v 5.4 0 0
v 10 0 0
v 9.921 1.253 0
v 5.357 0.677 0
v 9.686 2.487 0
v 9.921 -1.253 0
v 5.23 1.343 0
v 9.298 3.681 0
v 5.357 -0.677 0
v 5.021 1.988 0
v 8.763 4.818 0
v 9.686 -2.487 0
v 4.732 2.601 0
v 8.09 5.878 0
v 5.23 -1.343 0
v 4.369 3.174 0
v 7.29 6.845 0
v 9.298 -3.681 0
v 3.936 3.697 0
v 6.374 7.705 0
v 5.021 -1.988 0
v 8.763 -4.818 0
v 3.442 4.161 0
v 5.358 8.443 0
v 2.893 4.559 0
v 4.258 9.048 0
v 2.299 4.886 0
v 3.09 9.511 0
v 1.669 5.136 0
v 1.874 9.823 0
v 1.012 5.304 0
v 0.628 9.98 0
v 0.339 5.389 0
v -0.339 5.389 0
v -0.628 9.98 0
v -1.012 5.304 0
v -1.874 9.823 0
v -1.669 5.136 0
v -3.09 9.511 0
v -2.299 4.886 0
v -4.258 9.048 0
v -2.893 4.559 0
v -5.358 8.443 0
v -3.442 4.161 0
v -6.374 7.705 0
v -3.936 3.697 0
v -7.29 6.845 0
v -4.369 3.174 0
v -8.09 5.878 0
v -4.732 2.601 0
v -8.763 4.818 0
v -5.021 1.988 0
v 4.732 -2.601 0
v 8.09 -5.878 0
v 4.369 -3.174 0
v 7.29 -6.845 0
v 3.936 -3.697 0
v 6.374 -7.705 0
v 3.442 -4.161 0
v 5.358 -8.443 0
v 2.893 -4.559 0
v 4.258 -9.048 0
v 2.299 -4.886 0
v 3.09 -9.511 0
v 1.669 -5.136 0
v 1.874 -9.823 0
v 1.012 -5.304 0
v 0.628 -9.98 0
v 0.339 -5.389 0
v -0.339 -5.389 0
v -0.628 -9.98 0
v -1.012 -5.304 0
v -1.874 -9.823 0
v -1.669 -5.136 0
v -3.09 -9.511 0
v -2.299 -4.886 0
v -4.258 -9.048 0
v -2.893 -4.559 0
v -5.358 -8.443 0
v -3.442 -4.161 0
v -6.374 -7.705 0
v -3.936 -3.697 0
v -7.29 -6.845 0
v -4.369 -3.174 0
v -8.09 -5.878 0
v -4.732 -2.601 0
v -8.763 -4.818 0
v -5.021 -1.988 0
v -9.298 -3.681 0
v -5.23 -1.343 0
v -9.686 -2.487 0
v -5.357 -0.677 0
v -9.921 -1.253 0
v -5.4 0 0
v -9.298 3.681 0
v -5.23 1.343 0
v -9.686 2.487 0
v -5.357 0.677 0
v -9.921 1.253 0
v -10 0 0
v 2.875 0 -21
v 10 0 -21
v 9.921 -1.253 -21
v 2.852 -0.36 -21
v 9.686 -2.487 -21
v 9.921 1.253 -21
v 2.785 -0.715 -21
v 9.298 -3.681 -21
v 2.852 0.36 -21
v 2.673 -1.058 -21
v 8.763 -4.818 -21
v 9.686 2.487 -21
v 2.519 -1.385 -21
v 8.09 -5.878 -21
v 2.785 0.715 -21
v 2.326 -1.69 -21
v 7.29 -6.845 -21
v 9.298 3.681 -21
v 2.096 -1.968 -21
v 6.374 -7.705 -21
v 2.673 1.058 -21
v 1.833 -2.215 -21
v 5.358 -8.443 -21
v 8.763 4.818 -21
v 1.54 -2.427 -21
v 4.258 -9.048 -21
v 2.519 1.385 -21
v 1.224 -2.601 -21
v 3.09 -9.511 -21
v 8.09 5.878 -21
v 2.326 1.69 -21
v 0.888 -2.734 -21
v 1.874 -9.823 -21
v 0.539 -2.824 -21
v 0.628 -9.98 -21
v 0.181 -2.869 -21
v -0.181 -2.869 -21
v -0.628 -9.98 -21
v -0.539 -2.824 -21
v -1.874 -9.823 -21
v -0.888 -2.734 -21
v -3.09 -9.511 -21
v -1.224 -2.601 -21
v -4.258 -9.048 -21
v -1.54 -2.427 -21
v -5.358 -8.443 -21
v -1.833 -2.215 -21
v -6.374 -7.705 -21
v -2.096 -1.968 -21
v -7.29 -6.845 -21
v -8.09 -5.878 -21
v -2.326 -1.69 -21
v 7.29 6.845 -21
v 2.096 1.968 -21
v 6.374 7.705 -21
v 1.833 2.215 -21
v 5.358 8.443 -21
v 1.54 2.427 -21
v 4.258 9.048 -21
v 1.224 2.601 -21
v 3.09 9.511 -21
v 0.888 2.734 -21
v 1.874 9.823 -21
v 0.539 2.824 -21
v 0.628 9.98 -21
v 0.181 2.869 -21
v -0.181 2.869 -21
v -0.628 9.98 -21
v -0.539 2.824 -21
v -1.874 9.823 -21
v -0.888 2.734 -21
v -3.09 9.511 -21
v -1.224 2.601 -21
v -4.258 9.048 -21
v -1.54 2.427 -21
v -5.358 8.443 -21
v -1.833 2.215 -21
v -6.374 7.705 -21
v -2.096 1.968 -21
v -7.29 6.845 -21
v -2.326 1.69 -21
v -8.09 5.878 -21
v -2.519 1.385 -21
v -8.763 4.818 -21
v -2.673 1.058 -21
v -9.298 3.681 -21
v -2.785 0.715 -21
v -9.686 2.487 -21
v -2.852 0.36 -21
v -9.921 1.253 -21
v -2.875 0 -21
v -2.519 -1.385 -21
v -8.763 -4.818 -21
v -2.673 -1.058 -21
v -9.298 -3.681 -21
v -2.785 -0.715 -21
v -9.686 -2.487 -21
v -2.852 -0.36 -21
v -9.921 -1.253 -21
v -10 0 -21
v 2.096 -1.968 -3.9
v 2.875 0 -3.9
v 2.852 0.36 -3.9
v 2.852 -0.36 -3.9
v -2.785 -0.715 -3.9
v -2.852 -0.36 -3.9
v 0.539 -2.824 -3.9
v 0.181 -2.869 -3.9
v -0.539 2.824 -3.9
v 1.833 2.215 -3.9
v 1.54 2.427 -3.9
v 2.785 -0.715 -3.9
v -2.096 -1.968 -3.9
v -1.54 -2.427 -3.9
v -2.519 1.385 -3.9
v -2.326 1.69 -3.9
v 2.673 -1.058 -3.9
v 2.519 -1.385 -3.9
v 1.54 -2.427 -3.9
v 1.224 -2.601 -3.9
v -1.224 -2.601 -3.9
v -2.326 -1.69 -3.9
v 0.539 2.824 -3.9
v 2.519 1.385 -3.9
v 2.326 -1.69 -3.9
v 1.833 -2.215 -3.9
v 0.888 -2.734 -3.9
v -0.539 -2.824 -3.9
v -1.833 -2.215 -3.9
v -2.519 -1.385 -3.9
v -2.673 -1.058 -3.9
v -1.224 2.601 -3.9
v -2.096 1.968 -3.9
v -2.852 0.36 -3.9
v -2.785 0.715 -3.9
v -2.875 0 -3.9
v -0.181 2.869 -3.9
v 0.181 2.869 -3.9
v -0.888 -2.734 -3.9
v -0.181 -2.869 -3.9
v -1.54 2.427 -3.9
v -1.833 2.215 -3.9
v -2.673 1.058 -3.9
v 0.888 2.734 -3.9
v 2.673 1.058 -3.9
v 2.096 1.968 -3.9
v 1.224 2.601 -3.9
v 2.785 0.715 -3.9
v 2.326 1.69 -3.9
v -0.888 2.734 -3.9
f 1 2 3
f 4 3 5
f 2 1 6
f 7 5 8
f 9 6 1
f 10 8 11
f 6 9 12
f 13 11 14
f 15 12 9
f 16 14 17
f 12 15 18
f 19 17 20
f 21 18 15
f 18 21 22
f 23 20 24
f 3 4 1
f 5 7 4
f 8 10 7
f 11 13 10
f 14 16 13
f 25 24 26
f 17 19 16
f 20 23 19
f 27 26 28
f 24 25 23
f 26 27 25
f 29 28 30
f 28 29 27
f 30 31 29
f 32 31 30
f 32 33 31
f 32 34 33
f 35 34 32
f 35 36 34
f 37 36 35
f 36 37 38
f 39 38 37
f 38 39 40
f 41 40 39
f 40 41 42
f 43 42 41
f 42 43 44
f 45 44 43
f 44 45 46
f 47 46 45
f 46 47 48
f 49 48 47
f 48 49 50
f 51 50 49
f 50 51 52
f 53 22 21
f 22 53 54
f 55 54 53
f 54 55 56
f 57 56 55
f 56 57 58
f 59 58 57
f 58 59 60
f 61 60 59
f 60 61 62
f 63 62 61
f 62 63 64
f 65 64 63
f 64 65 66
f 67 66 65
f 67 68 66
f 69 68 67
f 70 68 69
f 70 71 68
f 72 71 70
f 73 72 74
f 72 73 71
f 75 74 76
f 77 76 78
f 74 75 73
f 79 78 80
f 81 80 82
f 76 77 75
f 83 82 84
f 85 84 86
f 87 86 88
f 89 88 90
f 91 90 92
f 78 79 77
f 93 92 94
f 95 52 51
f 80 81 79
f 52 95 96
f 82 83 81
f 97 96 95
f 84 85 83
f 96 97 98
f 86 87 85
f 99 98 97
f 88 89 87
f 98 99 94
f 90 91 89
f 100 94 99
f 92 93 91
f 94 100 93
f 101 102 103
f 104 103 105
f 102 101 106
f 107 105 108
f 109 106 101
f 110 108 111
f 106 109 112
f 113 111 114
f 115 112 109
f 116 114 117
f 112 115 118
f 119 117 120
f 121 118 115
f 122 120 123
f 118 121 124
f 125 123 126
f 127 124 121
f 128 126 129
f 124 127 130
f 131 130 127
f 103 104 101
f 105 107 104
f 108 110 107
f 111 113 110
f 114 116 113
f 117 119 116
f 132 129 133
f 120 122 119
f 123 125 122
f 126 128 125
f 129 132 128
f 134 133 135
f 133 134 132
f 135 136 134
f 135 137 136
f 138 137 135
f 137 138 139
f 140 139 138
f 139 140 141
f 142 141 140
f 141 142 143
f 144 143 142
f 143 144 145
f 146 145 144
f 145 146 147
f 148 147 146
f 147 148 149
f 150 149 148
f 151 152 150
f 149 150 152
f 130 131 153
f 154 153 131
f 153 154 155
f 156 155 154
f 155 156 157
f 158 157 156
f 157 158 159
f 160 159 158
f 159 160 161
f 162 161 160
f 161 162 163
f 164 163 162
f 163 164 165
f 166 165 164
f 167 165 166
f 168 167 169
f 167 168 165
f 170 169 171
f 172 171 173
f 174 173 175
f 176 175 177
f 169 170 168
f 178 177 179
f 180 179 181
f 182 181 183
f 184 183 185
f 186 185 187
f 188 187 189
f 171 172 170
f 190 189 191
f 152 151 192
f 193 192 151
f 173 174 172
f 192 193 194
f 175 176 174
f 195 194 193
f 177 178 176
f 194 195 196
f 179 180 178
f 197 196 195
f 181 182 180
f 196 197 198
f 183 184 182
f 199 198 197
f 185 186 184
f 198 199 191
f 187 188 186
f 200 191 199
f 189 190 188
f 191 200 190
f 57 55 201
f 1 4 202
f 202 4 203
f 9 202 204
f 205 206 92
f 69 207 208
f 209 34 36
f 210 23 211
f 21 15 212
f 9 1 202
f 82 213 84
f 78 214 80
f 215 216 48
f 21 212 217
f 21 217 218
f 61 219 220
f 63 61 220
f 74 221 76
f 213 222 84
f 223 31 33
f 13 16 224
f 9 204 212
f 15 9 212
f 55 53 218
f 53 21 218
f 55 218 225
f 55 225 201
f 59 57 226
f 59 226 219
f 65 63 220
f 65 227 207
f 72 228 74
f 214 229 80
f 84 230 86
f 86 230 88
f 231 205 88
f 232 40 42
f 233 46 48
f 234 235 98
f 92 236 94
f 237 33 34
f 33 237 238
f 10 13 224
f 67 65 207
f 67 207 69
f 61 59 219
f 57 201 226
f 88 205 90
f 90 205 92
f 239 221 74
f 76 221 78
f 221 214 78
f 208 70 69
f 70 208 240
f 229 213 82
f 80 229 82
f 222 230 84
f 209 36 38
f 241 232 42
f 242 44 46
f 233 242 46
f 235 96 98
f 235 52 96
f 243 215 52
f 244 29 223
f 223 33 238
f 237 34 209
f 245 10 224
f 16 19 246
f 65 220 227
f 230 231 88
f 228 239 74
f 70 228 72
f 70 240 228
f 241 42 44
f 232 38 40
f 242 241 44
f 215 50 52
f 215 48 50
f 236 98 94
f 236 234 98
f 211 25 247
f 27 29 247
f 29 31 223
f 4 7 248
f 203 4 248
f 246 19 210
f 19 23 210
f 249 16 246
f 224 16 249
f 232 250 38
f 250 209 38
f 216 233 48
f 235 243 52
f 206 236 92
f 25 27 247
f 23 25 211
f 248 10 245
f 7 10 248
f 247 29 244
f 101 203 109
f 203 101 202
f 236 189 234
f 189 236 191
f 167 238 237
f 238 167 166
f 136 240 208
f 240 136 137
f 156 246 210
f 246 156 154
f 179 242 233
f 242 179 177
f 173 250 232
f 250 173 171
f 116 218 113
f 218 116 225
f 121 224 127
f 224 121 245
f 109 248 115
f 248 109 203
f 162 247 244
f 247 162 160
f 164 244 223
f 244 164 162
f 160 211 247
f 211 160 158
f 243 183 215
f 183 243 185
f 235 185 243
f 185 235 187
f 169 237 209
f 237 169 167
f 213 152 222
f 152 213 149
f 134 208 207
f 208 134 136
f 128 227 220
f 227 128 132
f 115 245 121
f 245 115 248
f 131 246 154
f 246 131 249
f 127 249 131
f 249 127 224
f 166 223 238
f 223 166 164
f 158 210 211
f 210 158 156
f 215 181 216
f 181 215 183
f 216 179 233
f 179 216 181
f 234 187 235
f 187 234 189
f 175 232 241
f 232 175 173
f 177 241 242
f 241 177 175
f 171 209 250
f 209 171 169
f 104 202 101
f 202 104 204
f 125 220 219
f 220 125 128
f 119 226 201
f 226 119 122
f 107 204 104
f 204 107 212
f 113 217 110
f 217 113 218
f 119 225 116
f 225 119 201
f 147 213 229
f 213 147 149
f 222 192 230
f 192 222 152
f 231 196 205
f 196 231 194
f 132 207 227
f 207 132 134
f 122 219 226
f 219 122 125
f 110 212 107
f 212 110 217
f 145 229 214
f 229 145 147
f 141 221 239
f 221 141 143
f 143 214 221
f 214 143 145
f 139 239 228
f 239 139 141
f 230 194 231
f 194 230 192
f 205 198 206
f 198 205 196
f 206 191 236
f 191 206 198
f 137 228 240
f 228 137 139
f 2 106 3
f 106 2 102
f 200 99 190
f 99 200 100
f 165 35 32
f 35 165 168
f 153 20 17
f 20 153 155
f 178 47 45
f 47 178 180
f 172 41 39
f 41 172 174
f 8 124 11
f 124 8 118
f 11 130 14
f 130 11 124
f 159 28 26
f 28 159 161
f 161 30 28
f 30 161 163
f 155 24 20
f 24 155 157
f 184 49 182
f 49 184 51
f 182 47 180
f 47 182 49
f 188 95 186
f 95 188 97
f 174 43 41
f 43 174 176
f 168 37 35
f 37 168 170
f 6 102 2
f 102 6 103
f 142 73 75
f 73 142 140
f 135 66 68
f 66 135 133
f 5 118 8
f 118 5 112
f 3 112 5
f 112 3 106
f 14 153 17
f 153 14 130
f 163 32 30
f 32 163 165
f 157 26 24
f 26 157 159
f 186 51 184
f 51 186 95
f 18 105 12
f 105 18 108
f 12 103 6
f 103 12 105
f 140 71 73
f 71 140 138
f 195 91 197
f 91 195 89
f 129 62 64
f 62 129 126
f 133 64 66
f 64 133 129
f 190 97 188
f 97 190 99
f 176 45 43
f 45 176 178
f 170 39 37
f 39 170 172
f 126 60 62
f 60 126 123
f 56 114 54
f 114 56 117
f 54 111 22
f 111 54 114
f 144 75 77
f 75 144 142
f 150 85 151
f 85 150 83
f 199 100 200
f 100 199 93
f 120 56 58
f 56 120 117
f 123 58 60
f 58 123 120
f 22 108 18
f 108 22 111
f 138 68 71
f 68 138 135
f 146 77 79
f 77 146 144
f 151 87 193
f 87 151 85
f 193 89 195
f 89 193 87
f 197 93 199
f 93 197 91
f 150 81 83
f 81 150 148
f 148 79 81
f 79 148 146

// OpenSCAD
$fn = 50;


difference() {
	union() {
		translate(v = [0, 0, -21.0000000000]) {
			cylinder(h = 21, r = 10.0000000000);
		}
		cylinder(h = 0, r = 16.0000000000);
	}
	union() {
		translate(v = [0, 0, 0]) {
			rotate(a = [0, 0, 0]) {
				difference() {
					union() {
						#translate(v = [0, 0, -21.0000000000]) {
							cylinder(h = 21, r = 2.6000000000);
						}
						#translate(v = [0, 0, -3.9000000000]) {
							cylinder(h = 3.9000000000, r = 10.0000000000, r1 = 2.8750000000, r2 = 5.4000000000);
						}
						#translate(v = [0, 0, -21.0000000000]) {
							cylinder(h = 21, r = 2.8750000000);
						}
						#translate(v = [0, 0, -21.0000000000]) {
							cylinder(h = 21, r = 2.6000000000);
						}
					}
					union();
				}
			}
		}
	}
}
